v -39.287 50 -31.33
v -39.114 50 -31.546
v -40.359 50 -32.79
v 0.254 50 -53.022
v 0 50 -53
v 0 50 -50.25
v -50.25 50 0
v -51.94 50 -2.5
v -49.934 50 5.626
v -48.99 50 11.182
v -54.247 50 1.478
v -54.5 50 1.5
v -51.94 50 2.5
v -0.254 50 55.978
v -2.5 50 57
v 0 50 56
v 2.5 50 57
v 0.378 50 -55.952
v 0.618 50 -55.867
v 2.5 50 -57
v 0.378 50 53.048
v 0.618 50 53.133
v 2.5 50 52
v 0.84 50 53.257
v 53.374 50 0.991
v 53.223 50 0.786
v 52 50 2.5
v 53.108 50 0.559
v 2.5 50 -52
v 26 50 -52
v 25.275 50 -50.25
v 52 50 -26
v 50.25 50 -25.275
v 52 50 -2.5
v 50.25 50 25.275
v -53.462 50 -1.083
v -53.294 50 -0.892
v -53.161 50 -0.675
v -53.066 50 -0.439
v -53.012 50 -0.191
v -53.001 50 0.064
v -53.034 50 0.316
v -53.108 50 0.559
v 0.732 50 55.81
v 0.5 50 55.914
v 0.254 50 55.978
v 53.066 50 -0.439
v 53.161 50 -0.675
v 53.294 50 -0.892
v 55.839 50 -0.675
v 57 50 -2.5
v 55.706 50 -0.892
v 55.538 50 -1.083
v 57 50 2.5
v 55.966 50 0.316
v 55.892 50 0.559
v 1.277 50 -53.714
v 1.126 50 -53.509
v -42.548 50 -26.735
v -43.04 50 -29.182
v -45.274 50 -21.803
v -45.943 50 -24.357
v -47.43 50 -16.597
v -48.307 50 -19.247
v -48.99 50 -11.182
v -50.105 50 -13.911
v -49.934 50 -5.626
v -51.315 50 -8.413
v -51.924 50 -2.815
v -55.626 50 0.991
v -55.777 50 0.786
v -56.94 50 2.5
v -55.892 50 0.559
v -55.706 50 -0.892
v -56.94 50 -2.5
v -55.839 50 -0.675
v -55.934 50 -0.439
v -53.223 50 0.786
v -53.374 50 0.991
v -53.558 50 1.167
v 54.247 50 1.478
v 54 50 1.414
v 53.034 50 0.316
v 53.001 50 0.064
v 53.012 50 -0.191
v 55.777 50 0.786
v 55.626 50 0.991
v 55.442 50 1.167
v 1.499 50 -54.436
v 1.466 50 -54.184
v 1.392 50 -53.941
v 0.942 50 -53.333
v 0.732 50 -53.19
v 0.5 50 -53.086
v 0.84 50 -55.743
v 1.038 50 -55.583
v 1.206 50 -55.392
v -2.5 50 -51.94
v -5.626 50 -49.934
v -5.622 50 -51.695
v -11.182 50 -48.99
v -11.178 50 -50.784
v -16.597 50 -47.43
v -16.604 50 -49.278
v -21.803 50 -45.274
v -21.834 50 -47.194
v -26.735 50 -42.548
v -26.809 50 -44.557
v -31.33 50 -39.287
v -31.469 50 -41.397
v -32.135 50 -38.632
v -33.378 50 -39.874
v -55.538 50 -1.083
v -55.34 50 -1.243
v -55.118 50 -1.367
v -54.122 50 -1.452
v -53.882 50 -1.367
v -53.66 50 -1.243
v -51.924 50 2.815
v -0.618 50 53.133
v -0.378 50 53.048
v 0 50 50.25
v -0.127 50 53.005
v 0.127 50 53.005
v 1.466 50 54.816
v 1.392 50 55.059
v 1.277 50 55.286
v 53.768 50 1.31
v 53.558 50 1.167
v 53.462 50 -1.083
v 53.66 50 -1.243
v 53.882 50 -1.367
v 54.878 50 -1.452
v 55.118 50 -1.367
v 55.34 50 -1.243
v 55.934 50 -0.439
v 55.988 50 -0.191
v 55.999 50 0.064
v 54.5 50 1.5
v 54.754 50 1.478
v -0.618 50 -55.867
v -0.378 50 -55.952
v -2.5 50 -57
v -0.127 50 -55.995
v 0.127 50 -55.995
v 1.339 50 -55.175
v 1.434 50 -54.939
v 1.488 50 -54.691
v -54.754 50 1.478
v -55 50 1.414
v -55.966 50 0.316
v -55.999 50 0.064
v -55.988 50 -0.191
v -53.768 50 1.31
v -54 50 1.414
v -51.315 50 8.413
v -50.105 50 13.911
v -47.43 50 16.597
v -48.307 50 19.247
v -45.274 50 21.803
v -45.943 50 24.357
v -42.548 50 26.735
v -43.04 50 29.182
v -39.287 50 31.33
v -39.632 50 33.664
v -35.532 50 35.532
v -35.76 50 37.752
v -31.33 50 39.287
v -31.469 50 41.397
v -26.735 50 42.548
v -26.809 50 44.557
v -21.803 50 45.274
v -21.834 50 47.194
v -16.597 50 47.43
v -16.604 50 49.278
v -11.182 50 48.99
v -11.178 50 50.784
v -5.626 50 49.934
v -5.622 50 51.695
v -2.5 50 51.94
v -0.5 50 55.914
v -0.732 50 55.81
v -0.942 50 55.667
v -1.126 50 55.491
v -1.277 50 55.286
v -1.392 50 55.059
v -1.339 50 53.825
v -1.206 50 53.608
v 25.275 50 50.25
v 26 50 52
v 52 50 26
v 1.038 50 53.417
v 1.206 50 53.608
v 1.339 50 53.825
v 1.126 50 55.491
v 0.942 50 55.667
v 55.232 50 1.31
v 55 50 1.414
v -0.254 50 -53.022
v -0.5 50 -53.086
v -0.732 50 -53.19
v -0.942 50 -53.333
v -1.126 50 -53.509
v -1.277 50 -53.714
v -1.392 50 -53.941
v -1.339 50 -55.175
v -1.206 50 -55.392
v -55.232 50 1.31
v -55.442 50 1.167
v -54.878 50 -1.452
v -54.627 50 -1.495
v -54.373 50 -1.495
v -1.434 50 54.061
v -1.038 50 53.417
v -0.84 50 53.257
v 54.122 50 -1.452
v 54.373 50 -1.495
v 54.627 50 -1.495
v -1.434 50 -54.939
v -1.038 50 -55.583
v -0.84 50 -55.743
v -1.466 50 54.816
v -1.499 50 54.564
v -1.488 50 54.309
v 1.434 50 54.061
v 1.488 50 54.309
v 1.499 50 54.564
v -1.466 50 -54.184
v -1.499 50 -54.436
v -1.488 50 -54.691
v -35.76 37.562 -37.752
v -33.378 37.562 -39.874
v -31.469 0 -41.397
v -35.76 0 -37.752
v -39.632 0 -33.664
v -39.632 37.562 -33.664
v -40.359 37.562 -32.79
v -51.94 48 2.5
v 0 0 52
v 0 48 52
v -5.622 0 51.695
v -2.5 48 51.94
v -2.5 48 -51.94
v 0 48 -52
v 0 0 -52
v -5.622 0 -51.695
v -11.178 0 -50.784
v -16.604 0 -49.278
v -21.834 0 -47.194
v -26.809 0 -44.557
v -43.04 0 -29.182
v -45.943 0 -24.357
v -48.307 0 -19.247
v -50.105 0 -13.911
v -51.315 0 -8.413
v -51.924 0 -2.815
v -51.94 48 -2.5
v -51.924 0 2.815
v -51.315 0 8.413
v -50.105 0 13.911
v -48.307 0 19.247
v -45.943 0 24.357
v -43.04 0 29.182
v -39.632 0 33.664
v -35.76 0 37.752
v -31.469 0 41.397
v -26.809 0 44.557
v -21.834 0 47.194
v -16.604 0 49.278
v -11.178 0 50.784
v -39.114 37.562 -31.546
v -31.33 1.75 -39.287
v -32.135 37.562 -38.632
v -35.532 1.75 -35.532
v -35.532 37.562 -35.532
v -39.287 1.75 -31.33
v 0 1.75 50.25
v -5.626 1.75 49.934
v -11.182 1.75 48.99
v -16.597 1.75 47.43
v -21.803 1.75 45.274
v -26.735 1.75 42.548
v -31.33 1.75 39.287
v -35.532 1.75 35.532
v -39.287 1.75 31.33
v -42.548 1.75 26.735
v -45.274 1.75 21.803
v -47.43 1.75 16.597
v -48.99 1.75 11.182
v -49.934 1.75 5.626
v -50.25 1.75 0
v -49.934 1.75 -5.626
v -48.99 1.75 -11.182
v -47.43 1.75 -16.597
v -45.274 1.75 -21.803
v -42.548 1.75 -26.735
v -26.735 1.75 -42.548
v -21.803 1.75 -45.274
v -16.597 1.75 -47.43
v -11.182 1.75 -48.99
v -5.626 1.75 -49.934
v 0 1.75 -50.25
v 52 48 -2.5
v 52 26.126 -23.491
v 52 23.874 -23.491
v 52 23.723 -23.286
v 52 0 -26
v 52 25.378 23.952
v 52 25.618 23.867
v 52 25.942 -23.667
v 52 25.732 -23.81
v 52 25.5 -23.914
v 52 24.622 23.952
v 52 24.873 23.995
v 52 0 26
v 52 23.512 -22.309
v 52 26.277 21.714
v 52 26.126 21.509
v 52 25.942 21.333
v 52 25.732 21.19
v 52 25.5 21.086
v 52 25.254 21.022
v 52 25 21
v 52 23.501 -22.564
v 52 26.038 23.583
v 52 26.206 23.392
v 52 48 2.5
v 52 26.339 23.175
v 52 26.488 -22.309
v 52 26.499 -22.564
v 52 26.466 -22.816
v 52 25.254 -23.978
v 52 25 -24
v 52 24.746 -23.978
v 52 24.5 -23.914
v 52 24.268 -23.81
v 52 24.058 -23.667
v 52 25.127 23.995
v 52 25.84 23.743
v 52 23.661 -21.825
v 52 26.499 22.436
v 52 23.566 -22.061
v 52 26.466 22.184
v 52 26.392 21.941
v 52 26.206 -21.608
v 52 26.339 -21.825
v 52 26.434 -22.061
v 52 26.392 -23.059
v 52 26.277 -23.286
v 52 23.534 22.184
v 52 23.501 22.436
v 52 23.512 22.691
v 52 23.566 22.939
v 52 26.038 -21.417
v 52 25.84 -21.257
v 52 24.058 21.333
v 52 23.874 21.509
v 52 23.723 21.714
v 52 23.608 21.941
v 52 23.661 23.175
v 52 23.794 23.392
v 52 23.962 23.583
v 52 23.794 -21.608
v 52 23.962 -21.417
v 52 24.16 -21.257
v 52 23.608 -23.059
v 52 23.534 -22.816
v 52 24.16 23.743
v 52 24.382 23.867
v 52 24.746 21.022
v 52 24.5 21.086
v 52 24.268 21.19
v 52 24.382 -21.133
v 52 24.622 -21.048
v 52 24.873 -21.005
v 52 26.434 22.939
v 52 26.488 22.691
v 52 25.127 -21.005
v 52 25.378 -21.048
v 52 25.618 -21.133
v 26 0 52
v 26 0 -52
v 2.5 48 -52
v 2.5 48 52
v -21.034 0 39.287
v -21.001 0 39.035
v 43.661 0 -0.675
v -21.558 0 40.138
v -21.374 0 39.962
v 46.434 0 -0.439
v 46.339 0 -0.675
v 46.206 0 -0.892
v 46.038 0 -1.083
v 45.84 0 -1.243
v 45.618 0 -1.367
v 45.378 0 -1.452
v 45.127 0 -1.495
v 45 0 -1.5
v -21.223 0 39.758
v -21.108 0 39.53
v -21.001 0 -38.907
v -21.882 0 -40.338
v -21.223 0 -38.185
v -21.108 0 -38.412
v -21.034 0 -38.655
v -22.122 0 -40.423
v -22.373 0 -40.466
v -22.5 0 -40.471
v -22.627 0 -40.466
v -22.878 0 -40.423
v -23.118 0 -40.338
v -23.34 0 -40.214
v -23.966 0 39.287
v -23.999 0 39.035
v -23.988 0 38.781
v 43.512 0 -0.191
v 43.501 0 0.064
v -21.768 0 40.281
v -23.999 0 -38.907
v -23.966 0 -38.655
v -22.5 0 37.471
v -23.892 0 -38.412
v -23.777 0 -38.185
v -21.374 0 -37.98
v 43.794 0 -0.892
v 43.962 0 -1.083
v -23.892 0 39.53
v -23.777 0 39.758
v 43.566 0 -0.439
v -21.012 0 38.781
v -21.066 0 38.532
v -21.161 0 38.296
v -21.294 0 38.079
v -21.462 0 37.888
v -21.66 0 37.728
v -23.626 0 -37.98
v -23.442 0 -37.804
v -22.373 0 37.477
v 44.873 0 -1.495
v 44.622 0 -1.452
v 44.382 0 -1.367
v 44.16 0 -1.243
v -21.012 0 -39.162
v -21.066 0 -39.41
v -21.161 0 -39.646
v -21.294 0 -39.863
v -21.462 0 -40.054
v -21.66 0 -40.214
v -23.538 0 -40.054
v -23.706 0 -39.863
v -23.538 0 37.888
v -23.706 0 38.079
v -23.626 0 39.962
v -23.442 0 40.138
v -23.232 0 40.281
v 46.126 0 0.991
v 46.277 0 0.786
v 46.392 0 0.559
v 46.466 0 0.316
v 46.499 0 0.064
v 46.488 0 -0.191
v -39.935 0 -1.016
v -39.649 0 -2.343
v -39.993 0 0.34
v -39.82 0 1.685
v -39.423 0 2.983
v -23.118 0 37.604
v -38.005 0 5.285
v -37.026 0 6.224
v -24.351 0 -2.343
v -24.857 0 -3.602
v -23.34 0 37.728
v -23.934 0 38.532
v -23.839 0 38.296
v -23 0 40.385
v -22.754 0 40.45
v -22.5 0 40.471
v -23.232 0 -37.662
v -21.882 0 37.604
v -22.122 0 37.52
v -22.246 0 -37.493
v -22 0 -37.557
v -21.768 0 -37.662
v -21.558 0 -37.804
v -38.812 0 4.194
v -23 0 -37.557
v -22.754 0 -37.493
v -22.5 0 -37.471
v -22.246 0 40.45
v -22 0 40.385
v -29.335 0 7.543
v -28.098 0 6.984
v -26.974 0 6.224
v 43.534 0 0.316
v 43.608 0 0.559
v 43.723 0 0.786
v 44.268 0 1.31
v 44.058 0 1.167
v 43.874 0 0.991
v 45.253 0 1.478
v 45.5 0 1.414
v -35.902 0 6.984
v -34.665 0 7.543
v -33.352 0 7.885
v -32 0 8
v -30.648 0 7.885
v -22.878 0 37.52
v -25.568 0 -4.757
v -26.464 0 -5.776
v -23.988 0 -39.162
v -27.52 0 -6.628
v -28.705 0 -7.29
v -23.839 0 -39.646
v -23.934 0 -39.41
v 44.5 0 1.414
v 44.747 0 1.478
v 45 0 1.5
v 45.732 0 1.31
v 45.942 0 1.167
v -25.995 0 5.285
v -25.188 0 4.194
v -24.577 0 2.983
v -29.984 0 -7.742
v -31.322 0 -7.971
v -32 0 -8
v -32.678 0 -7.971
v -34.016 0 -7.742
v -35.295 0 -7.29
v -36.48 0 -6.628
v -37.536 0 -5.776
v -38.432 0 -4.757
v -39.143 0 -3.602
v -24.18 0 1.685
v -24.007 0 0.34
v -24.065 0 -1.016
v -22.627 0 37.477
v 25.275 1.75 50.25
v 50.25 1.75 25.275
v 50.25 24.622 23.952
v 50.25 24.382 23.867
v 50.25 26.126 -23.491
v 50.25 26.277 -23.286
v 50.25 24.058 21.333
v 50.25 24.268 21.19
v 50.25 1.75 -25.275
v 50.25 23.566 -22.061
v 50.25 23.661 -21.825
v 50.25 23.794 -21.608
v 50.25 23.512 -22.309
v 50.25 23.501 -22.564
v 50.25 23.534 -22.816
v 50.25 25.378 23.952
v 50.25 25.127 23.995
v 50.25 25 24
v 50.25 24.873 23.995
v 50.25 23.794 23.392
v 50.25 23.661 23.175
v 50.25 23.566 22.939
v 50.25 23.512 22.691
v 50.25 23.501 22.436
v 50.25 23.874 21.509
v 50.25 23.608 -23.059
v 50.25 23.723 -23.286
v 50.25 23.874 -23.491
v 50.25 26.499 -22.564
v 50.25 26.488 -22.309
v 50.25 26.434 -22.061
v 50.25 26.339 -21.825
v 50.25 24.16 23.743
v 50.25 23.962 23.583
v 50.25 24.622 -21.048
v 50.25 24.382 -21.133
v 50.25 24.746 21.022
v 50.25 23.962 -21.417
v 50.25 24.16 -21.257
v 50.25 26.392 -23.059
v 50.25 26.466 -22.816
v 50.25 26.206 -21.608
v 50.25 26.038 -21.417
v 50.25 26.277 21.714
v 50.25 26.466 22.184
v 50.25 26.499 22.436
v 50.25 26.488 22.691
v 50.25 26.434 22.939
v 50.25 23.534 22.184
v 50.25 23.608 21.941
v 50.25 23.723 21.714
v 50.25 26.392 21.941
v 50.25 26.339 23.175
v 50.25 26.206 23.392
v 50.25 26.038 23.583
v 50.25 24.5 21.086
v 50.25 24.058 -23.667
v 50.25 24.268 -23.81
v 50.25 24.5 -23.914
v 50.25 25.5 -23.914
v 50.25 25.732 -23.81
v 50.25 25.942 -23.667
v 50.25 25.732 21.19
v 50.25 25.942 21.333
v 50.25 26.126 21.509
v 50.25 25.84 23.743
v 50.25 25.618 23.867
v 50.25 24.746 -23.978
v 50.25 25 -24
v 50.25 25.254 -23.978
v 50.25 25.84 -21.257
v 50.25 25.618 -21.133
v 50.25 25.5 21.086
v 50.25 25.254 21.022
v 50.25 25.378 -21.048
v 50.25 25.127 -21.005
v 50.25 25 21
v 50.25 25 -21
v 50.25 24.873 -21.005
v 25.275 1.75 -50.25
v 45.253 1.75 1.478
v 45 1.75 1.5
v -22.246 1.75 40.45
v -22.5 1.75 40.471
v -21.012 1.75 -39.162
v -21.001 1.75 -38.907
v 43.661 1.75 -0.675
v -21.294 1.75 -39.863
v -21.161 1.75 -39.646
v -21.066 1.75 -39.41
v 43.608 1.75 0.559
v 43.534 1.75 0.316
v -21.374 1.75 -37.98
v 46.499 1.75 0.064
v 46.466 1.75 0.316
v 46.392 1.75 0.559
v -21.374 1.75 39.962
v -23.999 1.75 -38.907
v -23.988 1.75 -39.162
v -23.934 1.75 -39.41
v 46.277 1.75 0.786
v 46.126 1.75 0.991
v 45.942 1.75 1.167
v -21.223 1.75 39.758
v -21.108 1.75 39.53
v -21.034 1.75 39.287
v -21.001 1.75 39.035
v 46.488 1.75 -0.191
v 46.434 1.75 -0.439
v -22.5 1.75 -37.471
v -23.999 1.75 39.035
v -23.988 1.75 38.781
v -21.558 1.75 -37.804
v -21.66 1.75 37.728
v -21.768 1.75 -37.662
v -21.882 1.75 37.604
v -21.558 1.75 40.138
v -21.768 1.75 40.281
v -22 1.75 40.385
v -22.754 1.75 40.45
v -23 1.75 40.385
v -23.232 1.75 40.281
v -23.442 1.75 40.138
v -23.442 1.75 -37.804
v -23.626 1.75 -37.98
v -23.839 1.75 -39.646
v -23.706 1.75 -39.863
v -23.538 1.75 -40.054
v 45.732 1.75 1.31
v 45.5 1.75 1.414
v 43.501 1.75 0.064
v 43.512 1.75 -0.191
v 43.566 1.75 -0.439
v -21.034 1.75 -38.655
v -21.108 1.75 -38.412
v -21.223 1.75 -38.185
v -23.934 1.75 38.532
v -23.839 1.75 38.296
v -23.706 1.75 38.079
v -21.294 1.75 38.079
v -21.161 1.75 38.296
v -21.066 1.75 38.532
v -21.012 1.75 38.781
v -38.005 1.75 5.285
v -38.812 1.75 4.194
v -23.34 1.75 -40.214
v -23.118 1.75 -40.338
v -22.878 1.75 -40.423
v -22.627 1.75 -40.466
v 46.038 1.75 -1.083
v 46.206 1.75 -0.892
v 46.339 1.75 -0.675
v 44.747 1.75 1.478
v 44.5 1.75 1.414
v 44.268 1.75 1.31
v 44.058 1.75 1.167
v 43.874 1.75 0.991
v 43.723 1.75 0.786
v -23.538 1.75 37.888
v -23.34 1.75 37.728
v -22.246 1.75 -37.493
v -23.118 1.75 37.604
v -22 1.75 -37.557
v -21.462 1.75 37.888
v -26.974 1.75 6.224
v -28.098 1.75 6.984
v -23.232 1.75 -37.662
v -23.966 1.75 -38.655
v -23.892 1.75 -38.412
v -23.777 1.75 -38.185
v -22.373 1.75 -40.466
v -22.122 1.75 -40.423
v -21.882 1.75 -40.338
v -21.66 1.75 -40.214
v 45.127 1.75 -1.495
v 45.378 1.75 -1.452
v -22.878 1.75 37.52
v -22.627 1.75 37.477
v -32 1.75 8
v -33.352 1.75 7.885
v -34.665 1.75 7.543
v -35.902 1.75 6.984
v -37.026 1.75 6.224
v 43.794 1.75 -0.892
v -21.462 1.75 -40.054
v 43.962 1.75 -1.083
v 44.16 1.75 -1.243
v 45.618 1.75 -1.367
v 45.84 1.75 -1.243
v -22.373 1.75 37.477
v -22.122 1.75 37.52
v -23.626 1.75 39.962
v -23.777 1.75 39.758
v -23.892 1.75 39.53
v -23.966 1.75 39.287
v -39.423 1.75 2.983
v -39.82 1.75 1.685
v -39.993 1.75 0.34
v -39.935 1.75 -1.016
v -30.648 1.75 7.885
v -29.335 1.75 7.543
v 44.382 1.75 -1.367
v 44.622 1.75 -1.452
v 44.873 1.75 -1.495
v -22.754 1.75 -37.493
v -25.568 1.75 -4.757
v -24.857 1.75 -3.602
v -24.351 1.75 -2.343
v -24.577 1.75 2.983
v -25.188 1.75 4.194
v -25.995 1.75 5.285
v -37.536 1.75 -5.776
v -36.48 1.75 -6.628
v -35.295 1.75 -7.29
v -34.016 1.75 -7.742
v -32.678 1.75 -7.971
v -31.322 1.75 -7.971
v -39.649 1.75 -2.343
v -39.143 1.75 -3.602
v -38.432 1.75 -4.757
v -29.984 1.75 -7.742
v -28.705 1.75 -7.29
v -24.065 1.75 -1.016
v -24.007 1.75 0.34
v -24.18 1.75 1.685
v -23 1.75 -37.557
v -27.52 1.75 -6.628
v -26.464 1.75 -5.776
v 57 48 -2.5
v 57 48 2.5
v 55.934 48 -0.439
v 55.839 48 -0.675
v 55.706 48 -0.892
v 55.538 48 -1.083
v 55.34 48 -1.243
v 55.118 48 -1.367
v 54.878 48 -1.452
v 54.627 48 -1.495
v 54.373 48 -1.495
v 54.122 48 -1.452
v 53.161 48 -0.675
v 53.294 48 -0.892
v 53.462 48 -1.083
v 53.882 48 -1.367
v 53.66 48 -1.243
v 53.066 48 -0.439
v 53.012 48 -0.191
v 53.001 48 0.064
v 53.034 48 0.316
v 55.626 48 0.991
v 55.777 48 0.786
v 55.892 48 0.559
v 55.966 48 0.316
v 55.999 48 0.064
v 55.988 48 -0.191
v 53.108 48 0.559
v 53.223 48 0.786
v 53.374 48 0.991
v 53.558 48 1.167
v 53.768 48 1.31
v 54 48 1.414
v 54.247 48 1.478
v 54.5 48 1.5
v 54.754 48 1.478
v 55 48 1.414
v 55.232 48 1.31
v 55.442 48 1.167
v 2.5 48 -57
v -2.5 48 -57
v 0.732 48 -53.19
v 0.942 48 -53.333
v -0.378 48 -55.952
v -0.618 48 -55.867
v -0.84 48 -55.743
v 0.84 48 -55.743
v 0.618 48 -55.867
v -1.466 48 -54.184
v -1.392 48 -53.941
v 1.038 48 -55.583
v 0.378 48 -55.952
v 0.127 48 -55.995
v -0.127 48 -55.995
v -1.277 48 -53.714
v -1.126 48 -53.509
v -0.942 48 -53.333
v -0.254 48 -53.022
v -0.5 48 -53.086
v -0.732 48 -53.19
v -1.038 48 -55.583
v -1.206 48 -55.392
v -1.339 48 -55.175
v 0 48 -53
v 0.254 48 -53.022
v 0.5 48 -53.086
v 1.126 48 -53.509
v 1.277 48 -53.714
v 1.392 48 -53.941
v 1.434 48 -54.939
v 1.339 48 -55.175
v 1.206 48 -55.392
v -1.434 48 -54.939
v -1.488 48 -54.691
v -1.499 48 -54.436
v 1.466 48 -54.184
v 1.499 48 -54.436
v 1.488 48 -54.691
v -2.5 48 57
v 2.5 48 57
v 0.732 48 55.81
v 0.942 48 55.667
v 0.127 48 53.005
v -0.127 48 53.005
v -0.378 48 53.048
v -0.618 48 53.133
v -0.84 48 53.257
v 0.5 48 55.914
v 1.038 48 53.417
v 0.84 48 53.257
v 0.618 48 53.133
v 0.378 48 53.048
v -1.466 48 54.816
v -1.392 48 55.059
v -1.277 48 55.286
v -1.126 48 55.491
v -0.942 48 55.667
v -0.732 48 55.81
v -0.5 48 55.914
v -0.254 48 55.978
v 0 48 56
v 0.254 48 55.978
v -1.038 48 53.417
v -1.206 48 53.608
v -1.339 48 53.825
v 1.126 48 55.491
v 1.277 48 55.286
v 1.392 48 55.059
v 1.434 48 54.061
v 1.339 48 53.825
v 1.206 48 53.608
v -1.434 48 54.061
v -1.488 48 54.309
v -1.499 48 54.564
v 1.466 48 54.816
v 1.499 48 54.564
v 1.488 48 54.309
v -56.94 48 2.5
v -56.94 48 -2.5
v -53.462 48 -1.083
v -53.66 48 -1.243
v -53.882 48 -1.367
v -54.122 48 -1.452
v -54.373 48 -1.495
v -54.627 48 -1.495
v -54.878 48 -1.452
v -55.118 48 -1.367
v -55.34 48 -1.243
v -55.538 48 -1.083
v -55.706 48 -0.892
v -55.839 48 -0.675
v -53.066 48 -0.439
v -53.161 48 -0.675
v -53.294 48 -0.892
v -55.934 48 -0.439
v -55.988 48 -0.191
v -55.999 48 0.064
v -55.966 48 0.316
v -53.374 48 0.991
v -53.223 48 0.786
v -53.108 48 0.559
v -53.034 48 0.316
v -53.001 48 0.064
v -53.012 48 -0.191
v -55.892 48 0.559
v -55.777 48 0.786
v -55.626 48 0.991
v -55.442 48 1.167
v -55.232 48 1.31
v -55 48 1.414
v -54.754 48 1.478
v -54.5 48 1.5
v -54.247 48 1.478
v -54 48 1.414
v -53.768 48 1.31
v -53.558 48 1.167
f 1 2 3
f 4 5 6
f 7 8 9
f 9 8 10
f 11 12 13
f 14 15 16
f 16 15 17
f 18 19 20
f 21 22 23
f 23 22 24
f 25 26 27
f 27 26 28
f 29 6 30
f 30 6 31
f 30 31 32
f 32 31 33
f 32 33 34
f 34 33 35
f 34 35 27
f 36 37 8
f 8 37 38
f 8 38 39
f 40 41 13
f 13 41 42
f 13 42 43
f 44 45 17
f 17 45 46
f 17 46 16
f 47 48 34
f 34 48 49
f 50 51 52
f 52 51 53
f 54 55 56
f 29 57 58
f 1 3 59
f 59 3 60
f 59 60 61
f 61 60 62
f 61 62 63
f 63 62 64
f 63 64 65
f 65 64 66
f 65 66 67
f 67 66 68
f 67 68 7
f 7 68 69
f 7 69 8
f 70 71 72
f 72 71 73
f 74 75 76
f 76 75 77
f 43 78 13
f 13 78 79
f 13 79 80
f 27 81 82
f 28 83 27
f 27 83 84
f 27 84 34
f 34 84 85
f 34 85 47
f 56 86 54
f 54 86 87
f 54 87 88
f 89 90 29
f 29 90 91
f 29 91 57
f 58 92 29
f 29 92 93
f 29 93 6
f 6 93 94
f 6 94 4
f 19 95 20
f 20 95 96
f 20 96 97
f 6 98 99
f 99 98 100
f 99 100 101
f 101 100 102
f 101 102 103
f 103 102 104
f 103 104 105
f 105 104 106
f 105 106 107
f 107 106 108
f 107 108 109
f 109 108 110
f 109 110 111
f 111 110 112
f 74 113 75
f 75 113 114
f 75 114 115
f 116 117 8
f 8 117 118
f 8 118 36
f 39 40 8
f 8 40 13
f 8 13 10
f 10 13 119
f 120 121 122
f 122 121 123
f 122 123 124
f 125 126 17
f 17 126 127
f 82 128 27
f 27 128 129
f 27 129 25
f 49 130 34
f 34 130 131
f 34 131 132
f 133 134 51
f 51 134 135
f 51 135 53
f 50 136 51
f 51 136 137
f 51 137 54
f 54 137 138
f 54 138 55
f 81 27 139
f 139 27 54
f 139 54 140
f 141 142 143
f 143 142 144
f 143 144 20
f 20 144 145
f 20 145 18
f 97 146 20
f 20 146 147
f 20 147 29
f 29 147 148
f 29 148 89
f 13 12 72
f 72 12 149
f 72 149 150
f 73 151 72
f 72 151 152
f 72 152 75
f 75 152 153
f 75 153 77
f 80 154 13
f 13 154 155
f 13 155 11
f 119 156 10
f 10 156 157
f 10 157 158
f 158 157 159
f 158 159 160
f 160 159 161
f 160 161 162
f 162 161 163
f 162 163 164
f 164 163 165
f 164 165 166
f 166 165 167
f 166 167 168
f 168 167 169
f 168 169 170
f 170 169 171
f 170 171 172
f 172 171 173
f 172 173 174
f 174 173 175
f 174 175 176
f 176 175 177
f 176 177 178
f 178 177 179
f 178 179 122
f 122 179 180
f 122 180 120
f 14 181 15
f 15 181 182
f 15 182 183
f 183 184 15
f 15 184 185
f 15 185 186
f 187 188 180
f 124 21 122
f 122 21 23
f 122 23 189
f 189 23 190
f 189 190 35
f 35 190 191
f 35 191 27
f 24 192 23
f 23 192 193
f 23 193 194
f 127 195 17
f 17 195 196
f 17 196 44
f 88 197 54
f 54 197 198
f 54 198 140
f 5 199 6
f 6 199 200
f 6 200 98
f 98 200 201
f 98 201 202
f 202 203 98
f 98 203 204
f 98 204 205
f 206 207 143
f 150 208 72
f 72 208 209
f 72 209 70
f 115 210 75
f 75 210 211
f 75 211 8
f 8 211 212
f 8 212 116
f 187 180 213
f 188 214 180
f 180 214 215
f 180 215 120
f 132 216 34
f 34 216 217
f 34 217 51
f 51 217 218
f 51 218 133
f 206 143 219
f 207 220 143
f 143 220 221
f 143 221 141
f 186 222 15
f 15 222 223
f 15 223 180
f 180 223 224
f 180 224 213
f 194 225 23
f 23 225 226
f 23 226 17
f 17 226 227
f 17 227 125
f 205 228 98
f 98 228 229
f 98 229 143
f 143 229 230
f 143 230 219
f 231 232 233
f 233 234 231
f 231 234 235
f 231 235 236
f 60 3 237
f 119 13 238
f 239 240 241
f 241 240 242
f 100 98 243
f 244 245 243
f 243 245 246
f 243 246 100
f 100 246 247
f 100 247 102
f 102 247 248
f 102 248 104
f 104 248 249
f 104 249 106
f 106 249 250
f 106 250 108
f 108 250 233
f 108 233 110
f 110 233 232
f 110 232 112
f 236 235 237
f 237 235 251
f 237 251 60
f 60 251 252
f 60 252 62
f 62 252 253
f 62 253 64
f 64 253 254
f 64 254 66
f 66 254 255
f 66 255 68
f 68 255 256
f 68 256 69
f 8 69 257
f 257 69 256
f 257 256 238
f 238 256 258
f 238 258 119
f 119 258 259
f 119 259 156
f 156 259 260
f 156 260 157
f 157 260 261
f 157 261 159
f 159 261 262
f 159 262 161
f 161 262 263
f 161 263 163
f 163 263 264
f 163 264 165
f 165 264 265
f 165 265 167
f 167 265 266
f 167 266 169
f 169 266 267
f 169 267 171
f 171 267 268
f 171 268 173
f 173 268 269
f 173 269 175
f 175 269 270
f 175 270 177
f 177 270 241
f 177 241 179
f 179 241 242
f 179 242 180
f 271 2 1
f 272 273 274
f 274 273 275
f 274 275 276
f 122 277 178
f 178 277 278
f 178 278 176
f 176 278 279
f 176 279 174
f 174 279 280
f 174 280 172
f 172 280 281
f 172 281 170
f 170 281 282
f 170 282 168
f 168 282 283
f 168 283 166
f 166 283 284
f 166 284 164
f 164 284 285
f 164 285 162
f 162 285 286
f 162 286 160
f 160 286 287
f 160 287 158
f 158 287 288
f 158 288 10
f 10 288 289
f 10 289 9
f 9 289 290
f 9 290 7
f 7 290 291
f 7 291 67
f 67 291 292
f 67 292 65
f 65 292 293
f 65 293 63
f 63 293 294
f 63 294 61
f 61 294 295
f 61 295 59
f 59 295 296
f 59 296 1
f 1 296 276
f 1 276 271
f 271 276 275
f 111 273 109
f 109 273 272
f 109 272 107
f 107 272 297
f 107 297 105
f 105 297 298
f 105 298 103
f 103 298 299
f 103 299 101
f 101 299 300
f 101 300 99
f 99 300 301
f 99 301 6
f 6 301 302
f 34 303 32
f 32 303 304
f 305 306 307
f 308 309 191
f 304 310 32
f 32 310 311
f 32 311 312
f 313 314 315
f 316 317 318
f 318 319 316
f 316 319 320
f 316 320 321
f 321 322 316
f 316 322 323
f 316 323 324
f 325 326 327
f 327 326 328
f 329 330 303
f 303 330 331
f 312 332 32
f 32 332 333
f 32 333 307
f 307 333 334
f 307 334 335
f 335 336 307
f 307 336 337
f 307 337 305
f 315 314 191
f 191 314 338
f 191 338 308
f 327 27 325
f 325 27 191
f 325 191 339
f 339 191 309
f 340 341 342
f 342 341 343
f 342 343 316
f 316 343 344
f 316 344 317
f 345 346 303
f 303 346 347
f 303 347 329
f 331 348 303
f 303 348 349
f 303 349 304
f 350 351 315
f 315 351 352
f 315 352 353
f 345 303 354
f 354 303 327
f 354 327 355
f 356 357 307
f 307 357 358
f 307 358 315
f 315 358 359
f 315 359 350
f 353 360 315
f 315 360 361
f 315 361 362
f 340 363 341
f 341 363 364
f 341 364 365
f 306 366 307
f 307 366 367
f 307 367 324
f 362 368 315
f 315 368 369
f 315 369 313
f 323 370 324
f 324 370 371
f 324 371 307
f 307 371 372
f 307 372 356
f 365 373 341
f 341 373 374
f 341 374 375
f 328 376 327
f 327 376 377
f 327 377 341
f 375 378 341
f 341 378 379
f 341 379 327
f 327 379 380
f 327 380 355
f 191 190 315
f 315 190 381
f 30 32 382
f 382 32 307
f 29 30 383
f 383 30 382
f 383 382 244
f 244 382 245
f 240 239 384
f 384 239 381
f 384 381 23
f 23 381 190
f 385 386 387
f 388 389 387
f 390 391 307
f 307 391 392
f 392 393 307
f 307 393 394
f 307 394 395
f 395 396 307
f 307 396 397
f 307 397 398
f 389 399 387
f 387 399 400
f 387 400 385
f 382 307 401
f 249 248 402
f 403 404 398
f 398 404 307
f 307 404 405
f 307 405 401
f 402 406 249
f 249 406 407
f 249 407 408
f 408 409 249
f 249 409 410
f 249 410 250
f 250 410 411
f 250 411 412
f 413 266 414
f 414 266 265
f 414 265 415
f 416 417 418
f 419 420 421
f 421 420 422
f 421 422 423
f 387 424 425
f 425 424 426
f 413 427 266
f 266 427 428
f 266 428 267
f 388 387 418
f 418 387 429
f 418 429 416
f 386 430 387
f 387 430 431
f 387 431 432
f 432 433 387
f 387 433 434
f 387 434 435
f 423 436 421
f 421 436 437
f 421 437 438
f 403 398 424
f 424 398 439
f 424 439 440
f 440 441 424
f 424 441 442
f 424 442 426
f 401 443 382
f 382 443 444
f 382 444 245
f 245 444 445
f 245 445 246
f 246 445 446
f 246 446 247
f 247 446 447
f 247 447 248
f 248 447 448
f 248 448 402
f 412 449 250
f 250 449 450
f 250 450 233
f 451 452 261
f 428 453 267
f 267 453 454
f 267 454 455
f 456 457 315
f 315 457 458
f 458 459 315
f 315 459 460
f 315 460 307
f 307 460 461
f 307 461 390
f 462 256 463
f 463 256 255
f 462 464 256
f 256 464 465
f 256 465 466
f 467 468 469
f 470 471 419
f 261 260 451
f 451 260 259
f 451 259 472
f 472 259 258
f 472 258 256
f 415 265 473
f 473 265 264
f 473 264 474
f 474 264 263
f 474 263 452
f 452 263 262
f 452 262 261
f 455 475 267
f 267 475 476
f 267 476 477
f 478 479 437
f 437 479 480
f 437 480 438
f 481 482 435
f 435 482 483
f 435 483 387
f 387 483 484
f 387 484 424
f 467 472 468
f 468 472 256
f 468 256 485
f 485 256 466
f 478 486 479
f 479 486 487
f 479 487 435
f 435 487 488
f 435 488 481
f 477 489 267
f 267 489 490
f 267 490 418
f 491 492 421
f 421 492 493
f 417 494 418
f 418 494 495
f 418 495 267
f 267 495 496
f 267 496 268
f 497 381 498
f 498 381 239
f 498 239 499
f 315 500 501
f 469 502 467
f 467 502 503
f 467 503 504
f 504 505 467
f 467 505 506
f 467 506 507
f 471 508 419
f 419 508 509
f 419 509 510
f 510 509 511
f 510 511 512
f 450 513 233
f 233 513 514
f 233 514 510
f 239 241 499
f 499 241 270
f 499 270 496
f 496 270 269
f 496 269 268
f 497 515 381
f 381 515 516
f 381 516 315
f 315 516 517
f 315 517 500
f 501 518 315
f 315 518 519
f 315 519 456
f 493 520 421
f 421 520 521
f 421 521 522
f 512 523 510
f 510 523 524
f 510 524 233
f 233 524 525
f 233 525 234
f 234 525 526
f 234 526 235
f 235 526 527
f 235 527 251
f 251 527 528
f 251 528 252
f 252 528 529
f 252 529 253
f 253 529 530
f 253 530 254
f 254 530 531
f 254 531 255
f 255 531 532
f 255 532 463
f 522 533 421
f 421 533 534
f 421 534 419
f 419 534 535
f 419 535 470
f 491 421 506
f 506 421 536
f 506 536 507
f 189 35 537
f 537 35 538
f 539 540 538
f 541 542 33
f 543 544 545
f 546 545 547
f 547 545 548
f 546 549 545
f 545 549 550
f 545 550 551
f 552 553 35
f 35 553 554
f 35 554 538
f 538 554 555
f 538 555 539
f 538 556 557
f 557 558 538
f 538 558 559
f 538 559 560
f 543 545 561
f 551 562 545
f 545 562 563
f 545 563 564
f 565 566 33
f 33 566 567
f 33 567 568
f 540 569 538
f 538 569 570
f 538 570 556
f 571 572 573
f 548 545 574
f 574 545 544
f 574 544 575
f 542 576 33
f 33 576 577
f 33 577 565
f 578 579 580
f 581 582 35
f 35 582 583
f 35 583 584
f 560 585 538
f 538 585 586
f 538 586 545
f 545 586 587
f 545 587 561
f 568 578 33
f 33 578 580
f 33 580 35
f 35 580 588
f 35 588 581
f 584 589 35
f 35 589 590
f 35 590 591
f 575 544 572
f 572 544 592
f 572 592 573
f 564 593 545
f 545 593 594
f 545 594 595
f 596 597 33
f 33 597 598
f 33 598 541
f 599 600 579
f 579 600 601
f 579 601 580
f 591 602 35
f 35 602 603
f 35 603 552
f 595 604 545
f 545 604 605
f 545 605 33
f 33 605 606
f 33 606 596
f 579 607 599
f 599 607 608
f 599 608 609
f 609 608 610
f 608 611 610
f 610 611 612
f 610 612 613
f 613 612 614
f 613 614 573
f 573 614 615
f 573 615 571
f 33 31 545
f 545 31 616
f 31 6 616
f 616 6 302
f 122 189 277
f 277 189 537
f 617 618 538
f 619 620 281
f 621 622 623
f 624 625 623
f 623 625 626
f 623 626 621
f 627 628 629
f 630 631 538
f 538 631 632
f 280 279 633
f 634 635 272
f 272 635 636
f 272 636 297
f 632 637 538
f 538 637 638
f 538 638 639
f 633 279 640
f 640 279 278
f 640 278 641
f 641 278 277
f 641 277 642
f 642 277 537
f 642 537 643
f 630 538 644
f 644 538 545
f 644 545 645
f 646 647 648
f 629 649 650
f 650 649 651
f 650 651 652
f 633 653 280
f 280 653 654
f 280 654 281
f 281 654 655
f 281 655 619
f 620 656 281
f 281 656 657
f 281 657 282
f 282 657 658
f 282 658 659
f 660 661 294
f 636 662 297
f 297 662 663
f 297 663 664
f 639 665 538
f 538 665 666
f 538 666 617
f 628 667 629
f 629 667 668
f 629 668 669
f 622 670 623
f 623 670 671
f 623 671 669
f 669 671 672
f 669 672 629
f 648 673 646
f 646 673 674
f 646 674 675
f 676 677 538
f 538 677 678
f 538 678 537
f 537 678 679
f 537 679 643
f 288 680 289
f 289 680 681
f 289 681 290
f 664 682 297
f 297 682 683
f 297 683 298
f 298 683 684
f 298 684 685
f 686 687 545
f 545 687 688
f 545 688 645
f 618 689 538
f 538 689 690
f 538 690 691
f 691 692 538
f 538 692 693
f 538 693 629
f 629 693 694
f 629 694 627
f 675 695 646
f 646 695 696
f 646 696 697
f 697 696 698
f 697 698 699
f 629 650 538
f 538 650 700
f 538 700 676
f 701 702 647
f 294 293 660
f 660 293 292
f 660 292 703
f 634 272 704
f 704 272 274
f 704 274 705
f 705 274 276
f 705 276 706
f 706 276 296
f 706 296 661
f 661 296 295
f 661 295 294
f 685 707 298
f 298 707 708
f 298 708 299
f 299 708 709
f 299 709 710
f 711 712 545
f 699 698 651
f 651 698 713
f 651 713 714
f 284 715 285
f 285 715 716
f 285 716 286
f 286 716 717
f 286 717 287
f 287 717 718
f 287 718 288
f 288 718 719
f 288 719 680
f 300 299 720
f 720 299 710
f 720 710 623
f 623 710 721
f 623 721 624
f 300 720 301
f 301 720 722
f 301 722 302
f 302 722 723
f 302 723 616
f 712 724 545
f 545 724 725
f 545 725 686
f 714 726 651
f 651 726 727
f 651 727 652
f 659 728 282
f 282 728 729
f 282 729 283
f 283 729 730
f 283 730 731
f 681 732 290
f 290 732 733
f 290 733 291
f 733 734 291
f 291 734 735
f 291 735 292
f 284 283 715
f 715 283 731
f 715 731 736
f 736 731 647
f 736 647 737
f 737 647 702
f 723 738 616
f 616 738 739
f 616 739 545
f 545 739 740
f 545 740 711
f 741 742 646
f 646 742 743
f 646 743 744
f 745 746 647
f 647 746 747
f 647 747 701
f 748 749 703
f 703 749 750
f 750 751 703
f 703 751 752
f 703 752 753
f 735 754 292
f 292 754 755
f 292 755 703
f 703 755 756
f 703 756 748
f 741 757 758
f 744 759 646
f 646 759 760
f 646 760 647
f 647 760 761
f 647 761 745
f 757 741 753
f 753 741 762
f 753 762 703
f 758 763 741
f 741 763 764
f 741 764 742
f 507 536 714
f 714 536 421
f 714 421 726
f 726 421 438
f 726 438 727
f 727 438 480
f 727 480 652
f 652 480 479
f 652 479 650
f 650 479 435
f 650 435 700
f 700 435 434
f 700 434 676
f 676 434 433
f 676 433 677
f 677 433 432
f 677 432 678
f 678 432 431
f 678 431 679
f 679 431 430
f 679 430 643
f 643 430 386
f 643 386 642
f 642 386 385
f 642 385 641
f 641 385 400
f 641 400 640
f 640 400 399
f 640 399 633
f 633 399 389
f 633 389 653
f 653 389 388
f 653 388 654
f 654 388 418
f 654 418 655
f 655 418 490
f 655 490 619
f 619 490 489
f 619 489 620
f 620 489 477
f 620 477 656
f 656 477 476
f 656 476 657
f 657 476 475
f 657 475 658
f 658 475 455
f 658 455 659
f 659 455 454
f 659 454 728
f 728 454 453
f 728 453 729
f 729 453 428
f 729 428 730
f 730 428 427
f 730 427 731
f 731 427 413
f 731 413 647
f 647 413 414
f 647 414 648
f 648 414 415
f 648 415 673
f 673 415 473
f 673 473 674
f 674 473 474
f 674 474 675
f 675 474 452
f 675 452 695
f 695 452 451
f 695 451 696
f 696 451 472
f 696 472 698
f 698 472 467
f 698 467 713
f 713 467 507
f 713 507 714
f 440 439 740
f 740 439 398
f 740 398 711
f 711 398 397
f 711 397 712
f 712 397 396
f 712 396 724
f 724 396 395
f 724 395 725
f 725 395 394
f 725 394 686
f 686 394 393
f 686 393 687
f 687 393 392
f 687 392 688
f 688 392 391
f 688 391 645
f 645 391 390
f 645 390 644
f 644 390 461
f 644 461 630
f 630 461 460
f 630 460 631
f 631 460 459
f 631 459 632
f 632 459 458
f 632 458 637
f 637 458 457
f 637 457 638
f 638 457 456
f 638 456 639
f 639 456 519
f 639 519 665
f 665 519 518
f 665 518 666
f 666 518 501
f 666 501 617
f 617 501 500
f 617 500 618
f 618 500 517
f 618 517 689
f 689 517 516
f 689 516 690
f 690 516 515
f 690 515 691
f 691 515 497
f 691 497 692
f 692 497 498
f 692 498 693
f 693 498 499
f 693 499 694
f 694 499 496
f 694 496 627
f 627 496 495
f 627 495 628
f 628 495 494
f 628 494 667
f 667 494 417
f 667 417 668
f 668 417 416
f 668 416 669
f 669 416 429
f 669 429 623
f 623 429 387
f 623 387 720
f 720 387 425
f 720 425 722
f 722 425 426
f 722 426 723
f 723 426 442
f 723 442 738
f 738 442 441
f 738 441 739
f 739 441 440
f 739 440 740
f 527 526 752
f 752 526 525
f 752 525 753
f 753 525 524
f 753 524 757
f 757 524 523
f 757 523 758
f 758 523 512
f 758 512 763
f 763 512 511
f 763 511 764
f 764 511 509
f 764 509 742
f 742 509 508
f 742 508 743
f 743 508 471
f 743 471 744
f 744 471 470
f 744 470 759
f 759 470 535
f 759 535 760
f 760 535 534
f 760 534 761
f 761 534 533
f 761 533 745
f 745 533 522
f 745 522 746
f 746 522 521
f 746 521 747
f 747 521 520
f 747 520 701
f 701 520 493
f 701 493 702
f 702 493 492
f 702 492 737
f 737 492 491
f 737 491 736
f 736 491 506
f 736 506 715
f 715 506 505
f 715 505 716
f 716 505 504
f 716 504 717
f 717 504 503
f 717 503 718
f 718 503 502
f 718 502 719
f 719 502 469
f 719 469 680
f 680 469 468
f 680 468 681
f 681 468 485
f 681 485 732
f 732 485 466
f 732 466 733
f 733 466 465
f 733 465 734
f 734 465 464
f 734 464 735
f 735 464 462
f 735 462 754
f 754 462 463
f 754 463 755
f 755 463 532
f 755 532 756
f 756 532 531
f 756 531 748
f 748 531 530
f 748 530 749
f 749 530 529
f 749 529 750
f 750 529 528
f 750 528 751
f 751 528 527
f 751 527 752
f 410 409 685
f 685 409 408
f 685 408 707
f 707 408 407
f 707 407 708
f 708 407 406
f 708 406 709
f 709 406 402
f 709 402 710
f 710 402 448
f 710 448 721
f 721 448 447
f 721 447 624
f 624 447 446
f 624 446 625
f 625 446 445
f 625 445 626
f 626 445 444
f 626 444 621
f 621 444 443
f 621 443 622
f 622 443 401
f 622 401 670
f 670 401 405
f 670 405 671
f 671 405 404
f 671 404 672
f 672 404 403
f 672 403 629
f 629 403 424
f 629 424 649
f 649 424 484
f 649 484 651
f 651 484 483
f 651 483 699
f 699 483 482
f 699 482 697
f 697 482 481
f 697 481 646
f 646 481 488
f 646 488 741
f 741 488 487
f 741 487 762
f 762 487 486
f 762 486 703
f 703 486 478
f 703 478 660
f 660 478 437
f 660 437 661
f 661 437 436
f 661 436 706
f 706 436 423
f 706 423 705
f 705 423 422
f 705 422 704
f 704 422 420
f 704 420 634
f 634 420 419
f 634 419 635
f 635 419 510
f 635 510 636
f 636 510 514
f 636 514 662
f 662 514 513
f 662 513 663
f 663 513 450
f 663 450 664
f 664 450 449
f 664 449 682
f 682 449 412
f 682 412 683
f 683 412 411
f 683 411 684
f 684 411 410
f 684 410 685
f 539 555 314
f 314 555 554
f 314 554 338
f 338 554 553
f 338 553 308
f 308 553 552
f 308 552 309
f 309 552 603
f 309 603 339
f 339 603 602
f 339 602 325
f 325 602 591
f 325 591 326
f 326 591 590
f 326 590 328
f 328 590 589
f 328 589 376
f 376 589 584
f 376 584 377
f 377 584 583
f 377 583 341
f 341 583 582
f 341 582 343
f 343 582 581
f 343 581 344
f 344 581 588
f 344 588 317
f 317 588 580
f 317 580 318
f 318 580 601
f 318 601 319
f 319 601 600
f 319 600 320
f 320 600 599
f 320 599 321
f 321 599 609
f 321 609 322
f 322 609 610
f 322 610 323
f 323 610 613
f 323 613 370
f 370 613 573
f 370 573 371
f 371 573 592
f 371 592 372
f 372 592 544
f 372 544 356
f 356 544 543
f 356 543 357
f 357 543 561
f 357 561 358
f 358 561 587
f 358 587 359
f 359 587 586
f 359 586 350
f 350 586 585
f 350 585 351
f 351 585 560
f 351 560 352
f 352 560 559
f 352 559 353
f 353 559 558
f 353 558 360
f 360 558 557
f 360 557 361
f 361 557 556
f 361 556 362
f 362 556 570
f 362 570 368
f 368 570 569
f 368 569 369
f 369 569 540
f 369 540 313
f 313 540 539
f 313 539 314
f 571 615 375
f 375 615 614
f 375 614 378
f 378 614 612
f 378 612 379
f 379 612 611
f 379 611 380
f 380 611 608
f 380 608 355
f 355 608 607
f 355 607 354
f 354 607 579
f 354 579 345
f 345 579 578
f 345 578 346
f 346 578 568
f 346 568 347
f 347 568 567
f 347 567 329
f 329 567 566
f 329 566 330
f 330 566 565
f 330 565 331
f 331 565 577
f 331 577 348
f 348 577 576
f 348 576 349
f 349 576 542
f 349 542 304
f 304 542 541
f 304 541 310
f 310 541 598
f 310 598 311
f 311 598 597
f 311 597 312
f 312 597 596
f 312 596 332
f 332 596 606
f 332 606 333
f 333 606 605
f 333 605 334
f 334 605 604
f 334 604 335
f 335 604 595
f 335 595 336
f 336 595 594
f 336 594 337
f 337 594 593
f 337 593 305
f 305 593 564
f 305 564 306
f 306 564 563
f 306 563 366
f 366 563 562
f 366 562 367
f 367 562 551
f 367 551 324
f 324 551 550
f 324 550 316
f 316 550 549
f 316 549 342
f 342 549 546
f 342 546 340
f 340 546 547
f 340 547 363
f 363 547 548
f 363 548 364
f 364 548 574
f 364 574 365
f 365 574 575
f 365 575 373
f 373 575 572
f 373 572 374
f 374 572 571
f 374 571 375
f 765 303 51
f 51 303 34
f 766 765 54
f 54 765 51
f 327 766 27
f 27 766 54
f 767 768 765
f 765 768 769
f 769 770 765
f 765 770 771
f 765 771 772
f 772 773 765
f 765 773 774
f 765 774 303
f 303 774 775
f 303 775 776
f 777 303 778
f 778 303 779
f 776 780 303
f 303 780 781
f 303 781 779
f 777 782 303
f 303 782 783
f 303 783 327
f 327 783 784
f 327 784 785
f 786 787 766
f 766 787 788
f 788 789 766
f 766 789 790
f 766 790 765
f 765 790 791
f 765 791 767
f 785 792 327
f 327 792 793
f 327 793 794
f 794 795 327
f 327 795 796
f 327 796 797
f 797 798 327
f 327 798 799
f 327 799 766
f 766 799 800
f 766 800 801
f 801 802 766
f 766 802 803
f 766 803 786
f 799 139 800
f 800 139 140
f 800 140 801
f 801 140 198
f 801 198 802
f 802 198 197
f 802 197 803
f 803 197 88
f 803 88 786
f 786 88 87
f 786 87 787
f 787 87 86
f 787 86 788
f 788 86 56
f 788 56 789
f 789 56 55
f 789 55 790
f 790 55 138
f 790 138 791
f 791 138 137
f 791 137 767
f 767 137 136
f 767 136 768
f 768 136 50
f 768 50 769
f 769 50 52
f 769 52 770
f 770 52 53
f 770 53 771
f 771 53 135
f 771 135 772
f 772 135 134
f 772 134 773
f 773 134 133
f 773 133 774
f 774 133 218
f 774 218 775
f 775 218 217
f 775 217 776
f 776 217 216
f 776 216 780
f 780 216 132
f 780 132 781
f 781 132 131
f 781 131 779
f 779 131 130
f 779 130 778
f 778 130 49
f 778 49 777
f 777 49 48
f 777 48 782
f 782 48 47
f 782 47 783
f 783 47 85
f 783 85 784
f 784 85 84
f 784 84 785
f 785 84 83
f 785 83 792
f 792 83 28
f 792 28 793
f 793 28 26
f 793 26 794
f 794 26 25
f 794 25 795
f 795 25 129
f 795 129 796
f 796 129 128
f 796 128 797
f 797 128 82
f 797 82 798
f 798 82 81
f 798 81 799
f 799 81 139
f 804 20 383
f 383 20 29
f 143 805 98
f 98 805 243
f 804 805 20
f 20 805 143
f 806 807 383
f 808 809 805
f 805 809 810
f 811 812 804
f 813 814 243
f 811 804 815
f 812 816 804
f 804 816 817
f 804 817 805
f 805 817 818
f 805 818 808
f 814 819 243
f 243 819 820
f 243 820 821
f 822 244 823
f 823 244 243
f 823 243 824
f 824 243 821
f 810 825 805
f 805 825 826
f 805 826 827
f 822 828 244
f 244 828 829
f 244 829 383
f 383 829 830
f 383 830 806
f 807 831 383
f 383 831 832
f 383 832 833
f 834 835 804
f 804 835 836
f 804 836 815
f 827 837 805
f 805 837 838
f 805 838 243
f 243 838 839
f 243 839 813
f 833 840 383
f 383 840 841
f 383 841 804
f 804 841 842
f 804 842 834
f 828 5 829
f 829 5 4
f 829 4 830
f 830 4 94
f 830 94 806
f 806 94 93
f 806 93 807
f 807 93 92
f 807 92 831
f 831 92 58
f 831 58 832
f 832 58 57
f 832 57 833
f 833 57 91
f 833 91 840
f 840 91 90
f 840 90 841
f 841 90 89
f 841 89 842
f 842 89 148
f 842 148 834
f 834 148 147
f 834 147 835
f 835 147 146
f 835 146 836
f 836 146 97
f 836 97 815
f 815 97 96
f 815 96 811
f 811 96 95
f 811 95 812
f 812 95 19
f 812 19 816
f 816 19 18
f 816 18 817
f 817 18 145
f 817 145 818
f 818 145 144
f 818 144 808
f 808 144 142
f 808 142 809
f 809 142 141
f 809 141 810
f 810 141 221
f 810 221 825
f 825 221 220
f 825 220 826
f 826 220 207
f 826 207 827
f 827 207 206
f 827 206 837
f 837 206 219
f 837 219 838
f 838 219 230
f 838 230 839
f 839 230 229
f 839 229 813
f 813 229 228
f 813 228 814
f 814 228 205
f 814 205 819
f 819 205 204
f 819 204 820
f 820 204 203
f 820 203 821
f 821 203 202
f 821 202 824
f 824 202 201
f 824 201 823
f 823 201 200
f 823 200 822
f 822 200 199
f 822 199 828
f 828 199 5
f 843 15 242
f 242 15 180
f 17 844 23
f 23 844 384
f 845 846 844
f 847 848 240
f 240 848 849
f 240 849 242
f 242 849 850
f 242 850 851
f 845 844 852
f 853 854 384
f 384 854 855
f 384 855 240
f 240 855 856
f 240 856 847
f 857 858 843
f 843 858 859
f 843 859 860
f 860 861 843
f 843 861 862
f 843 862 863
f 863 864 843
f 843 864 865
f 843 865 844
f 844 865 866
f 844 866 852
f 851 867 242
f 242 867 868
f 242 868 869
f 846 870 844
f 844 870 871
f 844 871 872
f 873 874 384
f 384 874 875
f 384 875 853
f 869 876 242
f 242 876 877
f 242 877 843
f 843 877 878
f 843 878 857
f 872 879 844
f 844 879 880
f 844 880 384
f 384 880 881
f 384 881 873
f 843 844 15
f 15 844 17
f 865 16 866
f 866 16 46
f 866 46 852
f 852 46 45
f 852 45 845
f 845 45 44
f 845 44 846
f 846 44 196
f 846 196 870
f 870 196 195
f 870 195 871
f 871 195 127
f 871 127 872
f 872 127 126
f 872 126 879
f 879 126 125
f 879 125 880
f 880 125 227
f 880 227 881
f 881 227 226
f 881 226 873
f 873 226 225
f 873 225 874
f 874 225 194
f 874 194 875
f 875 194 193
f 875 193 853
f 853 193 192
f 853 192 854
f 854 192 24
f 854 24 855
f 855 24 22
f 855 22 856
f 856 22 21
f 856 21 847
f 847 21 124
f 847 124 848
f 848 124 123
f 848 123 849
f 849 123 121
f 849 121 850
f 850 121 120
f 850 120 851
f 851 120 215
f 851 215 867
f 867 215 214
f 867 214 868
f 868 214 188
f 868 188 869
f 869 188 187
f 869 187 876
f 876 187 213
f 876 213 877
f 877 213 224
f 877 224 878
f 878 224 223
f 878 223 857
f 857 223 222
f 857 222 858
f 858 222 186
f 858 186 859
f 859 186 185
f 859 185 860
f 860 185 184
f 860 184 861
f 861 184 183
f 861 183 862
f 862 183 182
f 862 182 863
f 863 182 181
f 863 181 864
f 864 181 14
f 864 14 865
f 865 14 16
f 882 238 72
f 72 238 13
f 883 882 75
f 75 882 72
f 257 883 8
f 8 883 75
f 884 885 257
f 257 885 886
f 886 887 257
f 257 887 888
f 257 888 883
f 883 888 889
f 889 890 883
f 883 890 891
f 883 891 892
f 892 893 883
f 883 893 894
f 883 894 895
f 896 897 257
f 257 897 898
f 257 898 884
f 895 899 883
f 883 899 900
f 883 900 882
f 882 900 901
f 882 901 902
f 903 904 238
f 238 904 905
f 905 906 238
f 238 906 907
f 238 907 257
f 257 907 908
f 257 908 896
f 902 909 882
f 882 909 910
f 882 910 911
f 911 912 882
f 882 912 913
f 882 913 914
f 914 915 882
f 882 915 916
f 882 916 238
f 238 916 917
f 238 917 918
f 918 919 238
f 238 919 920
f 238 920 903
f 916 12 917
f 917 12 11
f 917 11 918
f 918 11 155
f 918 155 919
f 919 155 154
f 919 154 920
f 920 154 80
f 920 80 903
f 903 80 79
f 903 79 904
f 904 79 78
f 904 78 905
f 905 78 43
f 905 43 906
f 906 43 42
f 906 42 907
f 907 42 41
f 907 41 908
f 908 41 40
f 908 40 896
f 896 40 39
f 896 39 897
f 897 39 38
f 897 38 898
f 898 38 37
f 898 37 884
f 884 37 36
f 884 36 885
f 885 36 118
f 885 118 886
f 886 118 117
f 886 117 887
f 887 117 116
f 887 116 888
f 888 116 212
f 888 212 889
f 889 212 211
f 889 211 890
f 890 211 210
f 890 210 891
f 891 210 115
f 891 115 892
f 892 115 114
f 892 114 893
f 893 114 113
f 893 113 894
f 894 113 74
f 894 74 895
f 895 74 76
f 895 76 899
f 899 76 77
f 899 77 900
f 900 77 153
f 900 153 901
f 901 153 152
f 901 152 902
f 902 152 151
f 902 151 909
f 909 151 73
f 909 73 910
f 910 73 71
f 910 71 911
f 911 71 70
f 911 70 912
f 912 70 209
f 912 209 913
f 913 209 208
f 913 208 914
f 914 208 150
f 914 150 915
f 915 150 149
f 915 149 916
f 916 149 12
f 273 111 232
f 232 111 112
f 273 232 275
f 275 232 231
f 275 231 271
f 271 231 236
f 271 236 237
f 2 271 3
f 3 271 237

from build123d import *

# Parameters (mm, degrees)
EXTRUDE_5_DEPTH     = 50
SHELL_4_T           = -1.75
SKETCH_3_R          = 8
SKETCH_3_R_2        = 1.5
CUT_EXTRUDE_2_DEPTH = 5
SKETCH_5_R          = 1.5
CUT_EXTRUDE_3_DEPTH = 5
SKETCH_6_W          = 5
SKETCH_6_H          = 5
SKETCH_6_R          = 1.5
SKETCH_6_H_2        = 5.539841266
EXTRUDE_8_DEPTH     = 2
SKETCH_9_W          = 9.945628491
SKETCH_9_H          = 14.246438642
CUT_EXTRUDE_4_DEPTH = 15


with BuildPart() as part:
    # 草图1 → 凸台-拉伸5 (new body)
    with BuildSketch(Plane(origin=(0, 0, 0), x_dir=(1, 0, 0), z_dir=(0, 1, 0))):
        with BuildLine():
            Line((0, -52), (26, -52))
            Line((26, -52), (52, -26))
            Line((52, -26), (52, 26))
            Line((52, 26), (26, 52))
            Line((26, 52), (0, 52))
            ThreePointArc((0, 52), (-52, 0), (0, -52))
        make_face()
    extrude(amount=EXTRUDE_5_DEPTH)

    # 抽壳4
    shell_4_openings = [part.faces().sort_by_distance(p)[0] for p in [
        (1.957361837, 50, 0),
    ]]
    offset(amount=SHELL_4_T, openings=shell_4_openings, kind=Kind.INTERSECTION)

    # 草图3 → 切除-拉伸2 (cut)
    with BuildSketch(Plane(origin=(0, 1.75, 0), x_dir=(1, 0, 0), z_dir=(0, 1, 0))):
        with Locations(Location((-32, 0, 0), (0, 0, 270))):
            Circle(SKETCH_3_R)
        with Locations(Location((45, 0, 0), (0, 0, 270))):
            Circle(SKETCH_3_R_2)
        with Locations(Location((-22.5, 38.97114317, 0), (0, 0, 270))):
            Circle(SKETCH_3_R_2)
        with Locations(Location((-22.5, -38.97114317, 0), (0, 0, 270))):
            Circle(SKETCH_3_R_2)
    extrude(amount=-CUT_EXTRUDE_2_DEPTH, mode=Mode.SUBTRACT)

    # 草图5 → 切除-拉伸3 (cut)
    with BuildSketch(Plane(origin=(52, 0, 0), x_dir=(0, 0, -1), z_dir=(1, 0, 0))):
        with Locations((22.5, 25)):
            Circle(SKETCH_5_R)
        with Locations((-22.5, 25)):
            Circle(SKETCH_5_R)
    extrude(amount=-CUT_EXTRUDE_3_DEPTH, mode=Mode.SUBTRACT)

    # 草图6 → 凸台-拉伸8 (add)
    # profile 1 of 4: a face of its own
    with BuildSketch(Plane(origin=(0, 50, 0), x_dir=(1, 0, 0), z_dir=(0, 1, 0))):
        with Locations((54.5, 0)):
            Rectangle(SKETCH_6_W, SKETCH_6_H)
        with Locations(Location((54.5, 0, 0), (0, 0, 270))):
            Circle(SKETCH_6_R, mode=Mode.SUBTRACT)
    # profile 2 of 4: a face of its own
    with BuildSketch(Plane(origin=(0, 50, 0), x_dir=(1, 0, 0), z_dir=(0, 1, 0))):
        with Locations((-54.43986908, 0)):
            Rectangle(SKETCH_6_W, SKETCH_6_H)
        with Locations(Location((-54.5, 0, 0), (0, 0, 270))):
            Circle(SKETCH_6_R, mode=Mode.SUBTRACT)
    # profile 3 of 4: a face of its own
    with BuildSketch(Plane(origin=(0, 50, 0), x_dir=(1, 0, 0), z_dir=(0, 1, 0))):
        Polygon((2.5, 52), (2.5, 57), (-2.5, 57), (-2.5, 52), (-2.5, 51.633473504), (2.5, 51.633473504), align=None)
        with Locations(Location((0, 54.5, 0), (0, 0, 270))):
            Circle(SKETCH_6_R, mode=Mode.SUBTRACT)
    # profile 4 of 4: a face of its own
    with BuildSketch(Plane(origin=(0, 50, 0), x_dir=(1, 0, 0), z_dir=(0, 1, 0))):
        with Locations((0, -54.230079367)):
            Rectangle(SKETCH_6_W, SKETCH_6_H_2)
        with Locations(Location((0, -54.5, 0), (0, 0, 270))):
            Circle(SKETCH_6_R, mode=Mode.SUBTRACT)
    extrude(amount=-EXTRUDE_8_DEPTH)

    # 草图9 → 切除-拉伸4 (cut)
    with BuildSketch(Plane(origin=(-29.751362544, 0, -29.718537282), x_dir=(-0.7067163758191224, 0, 0.707496971123612), z_dir=(-0.707496971123612, 0, -0.7067163758191224))):
        with Locations((0.350985127, 44.684979675)):
            Rectangle(SKETCH_9_W, SKETCH_9_H)
    extrude(amount=CUT_EXTRUDE_4_DEPTH, mode=Mode.SUBTRACT)


solid = part.part
